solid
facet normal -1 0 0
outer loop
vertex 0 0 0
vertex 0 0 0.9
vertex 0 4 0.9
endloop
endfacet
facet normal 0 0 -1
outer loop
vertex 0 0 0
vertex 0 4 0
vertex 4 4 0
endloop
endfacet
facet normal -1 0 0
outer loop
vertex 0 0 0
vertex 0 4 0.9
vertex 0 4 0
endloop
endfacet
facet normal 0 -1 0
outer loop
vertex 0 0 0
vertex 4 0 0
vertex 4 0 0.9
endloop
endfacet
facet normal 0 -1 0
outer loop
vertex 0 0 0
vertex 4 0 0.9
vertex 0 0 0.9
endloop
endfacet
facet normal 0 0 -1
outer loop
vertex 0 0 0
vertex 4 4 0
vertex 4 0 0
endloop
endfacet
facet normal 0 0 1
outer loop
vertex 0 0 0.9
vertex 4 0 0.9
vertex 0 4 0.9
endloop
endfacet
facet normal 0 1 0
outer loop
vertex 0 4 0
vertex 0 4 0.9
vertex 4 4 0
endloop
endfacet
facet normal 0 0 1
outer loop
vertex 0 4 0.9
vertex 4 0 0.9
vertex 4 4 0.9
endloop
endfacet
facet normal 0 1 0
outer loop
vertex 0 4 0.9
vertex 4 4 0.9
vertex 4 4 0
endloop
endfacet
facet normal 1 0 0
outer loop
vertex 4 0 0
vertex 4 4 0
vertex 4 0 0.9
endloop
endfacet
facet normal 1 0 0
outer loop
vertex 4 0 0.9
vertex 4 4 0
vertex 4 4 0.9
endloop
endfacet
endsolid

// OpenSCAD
/* Warning, this is a very basic generator with a lot of approximation 
input data : [VQFN, KNX, 4x4x0.9mm, 20, , A, C04-00465A]
generated by com.zoubworld.electronics.cad.model3d.Basic
Date : Sun Feb 15 10:50:48 CET 2026
*/

//body
color("black")
translate([0,0,0])
cube([4.0,4.0,0.9], center=false);
